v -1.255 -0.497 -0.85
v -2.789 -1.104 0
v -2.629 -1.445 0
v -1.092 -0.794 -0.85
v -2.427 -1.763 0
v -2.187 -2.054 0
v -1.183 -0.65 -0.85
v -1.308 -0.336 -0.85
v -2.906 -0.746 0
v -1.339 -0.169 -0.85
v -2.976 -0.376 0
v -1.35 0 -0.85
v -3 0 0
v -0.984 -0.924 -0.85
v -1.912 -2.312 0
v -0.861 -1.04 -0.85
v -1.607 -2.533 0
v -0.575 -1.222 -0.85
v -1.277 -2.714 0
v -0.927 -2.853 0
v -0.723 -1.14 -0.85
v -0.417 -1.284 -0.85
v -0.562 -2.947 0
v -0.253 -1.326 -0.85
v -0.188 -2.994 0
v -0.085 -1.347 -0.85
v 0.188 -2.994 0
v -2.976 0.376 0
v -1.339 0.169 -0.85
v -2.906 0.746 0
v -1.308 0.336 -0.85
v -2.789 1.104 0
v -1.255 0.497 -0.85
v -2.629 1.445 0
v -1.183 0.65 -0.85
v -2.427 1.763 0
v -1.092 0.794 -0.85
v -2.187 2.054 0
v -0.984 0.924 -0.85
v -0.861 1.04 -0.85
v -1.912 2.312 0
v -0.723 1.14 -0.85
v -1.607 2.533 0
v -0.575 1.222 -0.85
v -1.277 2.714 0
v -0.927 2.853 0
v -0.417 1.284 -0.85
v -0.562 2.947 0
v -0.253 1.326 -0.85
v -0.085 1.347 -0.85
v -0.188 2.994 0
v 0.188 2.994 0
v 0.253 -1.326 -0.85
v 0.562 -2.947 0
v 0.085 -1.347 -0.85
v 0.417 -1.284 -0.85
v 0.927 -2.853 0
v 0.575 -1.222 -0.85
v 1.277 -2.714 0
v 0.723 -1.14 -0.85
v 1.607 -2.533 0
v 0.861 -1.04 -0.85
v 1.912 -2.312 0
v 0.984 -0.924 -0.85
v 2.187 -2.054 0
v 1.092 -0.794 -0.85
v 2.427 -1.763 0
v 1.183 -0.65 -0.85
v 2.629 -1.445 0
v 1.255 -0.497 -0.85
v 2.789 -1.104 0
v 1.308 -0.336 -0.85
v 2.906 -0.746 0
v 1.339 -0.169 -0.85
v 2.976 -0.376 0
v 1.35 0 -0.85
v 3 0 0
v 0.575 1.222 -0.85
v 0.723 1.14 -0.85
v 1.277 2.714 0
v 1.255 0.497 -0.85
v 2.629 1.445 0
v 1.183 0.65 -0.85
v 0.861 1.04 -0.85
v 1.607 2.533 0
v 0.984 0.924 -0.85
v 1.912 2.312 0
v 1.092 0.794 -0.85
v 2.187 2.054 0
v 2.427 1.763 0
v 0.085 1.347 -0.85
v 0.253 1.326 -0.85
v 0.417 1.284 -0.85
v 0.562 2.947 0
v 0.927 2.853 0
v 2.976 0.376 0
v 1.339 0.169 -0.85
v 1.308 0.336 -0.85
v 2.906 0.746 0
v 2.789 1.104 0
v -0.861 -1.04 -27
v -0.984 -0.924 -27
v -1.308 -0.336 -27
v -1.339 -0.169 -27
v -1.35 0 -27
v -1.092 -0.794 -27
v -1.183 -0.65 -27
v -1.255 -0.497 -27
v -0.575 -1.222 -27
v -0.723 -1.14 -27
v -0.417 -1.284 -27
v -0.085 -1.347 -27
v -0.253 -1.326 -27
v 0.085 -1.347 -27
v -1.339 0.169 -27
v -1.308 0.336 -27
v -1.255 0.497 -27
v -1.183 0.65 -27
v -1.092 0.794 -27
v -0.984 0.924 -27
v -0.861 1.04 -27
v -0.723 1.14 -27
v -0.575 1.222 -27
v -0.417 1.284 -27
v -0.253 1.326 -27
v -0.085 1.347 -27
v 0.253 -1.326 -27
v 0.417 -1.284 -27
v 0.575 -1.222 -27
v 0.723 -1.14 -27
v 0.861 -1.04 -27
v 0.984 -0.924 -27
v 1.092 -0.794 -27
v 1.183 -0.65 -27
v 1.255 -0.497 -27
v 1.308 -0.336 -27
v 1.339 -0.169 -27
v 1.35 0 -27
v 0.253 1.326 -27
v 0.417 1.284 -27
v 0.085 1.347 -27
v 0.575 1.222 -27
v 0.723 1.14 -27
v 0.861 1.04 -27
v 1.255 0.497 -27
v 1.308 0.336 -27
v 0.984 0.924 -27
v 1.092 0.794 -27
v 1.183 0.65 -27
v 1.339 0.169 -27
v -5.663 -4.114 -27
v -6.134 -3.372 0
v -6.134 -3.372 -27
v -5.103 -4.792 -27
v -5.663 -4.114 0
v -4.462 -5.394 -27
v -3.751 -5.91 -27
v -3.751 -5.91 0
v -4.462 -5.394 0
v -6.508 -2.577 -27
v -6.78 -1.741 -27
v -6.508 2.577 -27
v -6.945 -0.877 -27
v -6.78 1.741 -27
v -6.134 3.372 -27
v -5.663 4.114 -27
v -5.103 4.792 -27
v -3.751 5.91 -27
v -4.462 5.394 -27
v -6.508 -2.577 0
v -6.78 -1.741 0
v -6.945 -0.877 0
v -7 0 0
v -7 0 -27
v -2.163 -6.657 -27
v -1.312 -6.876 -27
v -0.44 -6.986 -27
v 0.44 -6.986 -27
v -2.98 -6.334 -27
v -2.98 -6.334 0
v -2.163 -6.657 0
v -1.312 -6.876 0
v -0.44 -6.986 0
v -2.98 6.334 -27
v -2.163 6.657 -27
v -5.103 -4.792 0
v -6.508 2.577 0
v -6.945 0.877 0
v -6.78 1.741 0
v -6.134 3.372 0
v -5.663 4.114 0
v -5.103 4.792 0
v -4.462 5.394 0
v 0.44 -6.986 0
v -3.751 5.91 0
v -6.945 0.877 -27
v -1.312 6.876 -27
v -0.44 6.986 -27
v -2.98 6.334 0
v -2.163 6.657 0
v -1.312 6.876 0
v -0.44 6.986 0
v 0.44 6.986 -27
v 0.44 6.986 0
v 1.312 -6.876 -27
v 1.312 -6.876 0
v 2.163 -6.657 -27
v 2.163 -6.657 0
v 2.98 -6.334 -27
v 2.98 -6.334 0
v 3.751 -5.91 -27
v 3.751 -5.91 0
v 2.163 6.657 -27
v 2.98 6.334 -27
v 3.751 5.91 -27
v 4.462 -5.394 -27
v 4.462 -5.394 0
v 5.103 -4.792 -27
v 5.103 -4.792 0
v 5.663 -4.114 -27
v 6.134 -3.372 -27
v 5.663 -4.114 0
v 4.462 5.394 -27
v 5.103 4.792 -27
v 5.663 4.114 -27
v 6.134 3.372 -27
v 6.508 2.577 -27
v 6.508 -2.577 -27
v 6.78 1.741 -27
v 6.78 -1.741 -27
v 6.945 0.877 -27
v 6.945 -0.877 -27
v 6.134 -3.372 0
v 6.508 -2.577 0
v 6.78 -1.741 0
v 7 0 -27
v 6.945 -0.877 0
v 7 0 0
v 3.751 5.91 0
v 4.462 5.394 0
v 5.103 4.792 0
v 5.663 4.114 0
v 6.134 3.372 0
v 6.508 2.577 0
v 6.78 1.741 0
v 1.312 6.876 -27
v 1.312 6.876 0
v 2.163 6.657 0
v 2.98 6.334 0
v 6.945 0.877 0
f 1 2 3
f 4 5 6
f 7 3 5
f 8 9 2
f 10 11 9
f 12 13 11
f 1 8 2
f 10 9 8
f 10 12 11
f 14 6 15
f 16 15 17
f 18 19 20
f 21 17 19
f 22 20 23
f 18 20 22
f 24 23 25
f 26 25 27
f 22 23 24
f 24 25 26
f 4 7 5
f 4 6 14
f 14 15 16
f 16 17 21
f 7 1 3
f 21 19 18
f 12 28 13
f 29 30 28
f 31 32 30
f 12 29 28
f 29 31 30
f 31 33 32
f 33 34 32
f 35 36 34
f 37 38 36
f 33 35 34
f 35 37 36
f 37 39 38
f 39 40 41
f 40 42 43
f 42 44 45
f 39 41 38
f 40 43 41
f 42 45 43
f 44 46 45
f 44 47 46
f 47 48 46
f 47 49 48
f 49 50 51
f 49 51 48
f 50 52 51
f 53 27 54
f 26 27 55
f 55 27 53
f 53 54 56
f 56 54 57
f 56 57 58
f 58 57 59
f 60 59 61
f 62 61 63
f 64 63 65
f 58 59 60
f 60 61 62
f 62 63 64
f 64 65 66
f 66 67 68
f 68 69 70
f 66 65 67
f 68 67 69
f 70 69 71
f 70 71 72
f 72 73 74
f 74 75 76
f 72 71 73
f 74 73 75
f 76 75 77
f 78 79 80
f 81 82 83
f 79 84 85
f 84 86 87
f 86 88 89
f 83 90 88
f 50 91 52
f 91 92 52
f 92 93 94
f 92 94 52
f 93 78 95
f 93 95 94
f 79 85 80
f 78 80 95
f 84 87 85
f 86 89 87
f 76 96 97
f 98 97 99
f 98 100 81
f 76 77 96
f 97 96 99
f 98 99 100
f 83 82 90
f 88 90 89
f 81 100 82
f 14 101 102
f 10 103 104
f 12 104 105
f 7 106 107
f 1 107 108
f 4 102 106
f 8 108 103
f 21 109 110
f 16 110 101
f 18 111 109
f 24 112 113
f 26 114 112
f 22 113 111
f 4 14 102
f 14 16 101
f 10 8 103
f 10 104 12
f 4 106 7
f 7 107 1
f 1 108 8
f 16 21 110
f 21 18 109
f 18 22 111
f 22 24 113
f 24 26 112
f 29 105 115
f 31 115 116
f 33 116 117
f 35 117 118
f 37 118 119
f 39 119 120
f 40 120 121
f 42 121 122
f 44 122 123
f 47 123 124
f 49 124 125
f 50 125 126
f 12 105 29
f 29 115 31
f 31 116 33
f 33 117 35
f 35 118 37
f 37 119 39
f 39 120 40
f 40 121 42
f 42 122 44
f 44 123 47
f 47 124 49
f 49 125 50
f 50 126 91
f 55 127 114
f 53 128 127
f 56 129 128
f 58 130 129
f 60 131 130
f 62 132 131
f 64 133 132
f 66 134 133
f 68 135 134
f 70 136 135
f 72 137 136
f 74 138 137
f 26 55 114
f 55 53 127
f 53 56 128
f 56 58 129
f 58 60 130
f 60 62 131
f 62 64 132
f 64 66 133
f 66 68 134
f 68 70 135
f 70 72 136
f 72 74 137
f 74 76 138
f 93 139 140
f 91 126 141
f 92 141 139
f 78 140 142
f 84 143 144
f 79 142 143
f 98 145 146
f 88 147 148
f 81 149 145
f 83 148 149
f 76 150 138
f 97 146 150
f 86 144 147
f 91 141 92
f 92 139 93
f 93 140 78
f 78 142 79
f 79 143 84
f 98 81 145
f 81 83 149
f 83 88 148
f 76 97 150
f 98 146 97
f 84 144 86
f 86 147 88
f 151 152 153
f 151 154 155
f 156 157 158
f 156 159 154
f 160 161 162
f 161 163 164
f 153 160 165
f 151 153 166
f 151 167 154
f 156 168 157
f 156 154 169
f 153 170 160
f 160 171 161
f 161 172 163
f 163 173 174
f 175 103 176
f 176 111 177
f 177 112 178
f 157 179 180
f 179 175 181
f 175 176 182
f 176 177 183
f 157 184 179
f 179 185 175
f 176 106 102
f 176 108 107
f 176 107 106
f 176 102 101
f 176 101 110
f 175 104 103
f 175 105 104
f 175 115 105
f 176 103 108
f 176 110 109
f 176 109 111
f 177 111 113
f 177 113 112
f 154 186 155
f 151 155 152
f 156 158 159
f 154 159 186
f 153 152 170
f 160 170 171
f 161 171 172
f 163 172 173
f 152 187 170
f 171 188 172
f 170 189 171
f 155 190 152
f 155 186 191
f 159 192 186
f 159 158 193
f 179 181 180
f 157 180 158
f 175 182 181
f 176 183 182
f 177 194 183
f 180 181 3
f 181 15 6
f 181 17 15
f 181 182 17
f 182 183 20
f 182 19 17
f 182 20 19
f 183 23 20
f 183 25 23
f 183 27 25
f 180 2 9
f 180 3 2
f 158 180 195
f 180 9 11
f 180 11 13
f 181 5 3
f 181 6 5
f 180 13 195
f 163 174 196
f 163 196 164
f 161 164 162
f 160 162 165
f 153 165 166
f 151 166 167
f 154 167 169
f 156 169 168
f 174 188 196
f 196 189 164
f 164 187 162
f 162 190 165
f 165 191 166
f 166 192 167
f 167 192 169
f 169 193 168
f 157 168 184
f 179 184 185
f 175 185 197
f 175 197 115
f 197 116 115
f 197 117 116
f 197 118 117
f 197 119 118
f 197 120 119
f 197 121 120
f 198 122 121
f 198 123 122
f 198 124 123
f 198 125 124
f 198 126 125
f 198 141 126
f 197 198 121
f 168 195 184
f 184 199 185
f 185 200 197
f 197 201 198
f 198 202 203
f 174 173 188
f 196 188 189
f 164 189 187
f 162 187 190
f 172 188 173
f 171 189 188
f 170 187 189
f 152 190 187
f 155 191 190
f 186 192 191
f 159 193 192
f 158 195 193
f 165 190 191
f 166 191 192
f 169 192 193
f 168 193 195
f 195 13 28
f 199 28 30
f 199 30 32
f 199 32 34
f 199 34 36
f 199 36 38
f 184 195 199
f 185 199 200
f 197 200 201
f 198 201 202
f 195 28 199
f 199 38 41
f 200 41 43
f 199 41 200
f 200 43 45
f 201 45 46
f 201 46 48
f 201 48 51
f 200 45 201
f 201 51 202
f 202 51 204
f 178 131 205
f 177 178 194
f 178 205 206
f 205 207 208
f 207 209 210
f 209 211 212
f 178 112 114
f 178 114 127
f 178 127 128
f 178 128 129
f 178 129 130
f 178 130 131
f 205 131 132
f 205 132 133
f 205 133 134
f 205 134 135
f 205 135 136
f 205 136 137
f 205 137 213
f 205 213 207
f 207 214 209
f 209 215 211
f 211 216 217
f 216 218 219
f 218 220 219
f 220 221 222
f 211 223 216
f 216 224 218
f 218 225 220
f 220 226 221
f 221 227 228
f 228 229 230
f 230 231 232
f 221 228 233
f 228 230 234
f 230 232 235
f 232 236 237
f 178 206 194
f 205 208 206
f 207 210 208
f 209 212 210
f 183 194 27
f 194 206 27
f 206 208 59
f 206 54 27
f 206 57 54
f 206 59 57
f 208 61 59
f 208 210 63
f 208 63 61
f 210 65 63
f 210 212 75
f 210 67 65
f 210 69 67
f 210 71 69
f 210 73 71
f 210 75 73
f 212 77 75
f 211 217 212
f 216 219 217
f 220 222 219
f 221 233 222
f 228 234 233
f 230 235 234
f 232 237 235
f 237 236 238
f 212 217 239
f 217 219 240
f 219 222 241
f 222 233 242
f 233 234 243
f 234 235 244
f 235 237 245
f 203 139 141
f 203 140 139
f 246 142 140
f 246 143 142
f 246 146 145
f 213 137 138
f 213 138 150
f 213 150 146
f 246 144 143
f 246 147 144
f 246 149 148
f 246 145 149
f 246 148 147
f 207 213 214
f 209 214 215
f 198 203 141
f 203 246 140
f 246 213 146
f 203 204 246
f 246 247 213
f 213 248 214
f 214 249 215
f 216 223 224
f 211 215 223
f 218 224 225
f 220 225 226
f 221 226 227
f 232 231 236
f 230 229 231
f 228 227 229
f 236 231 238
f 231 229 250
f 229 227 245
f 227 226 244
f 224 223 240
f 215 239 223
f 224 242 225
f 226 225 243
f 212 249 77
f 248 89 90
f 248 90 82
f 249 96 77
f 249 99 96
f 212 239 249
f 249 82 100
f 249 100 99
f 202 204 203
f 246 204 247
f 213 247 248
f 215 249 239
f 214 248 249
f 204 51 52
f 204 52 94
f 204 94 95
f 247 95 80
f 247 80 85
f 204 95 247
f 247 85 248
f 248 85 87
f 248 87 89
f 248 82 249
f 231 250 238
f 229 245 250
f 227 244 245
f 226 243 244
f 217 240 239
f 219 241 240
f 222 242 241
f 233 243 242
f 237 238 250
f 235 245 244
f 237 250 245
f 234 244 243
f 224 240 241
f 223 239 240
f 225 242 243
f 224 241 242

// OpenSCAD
$fn = 50;

difference() {
	union() {
		translate(v = [0, 0, -27.0]) {
			cylinder(h = 27, r = 7.0);
		}
	}
	union() {
		translate(v = [0, 0, 0]) {
			rotate(a = [0, 0, 0]) {
				difference() {
					union() {
						translate(v = [0, 0, -30.0]) {
							cylinder(h = 30, r = 1.0);
						}
						translate(v = [0, 0, -0.85]) {
							cylinder(h = 0.85, r1 = 1.35, r2 = 3.0);
						}
						translate(v = [0, 0, -30.0]) {
							cylinder(h = 30, r = 1.35);
						}
						translate(v = [0, 0, -30.0]) {
							cylinder(h = 30, r = 1.0);
						}
					}
					union();
				}
			}
		}
	}
}
